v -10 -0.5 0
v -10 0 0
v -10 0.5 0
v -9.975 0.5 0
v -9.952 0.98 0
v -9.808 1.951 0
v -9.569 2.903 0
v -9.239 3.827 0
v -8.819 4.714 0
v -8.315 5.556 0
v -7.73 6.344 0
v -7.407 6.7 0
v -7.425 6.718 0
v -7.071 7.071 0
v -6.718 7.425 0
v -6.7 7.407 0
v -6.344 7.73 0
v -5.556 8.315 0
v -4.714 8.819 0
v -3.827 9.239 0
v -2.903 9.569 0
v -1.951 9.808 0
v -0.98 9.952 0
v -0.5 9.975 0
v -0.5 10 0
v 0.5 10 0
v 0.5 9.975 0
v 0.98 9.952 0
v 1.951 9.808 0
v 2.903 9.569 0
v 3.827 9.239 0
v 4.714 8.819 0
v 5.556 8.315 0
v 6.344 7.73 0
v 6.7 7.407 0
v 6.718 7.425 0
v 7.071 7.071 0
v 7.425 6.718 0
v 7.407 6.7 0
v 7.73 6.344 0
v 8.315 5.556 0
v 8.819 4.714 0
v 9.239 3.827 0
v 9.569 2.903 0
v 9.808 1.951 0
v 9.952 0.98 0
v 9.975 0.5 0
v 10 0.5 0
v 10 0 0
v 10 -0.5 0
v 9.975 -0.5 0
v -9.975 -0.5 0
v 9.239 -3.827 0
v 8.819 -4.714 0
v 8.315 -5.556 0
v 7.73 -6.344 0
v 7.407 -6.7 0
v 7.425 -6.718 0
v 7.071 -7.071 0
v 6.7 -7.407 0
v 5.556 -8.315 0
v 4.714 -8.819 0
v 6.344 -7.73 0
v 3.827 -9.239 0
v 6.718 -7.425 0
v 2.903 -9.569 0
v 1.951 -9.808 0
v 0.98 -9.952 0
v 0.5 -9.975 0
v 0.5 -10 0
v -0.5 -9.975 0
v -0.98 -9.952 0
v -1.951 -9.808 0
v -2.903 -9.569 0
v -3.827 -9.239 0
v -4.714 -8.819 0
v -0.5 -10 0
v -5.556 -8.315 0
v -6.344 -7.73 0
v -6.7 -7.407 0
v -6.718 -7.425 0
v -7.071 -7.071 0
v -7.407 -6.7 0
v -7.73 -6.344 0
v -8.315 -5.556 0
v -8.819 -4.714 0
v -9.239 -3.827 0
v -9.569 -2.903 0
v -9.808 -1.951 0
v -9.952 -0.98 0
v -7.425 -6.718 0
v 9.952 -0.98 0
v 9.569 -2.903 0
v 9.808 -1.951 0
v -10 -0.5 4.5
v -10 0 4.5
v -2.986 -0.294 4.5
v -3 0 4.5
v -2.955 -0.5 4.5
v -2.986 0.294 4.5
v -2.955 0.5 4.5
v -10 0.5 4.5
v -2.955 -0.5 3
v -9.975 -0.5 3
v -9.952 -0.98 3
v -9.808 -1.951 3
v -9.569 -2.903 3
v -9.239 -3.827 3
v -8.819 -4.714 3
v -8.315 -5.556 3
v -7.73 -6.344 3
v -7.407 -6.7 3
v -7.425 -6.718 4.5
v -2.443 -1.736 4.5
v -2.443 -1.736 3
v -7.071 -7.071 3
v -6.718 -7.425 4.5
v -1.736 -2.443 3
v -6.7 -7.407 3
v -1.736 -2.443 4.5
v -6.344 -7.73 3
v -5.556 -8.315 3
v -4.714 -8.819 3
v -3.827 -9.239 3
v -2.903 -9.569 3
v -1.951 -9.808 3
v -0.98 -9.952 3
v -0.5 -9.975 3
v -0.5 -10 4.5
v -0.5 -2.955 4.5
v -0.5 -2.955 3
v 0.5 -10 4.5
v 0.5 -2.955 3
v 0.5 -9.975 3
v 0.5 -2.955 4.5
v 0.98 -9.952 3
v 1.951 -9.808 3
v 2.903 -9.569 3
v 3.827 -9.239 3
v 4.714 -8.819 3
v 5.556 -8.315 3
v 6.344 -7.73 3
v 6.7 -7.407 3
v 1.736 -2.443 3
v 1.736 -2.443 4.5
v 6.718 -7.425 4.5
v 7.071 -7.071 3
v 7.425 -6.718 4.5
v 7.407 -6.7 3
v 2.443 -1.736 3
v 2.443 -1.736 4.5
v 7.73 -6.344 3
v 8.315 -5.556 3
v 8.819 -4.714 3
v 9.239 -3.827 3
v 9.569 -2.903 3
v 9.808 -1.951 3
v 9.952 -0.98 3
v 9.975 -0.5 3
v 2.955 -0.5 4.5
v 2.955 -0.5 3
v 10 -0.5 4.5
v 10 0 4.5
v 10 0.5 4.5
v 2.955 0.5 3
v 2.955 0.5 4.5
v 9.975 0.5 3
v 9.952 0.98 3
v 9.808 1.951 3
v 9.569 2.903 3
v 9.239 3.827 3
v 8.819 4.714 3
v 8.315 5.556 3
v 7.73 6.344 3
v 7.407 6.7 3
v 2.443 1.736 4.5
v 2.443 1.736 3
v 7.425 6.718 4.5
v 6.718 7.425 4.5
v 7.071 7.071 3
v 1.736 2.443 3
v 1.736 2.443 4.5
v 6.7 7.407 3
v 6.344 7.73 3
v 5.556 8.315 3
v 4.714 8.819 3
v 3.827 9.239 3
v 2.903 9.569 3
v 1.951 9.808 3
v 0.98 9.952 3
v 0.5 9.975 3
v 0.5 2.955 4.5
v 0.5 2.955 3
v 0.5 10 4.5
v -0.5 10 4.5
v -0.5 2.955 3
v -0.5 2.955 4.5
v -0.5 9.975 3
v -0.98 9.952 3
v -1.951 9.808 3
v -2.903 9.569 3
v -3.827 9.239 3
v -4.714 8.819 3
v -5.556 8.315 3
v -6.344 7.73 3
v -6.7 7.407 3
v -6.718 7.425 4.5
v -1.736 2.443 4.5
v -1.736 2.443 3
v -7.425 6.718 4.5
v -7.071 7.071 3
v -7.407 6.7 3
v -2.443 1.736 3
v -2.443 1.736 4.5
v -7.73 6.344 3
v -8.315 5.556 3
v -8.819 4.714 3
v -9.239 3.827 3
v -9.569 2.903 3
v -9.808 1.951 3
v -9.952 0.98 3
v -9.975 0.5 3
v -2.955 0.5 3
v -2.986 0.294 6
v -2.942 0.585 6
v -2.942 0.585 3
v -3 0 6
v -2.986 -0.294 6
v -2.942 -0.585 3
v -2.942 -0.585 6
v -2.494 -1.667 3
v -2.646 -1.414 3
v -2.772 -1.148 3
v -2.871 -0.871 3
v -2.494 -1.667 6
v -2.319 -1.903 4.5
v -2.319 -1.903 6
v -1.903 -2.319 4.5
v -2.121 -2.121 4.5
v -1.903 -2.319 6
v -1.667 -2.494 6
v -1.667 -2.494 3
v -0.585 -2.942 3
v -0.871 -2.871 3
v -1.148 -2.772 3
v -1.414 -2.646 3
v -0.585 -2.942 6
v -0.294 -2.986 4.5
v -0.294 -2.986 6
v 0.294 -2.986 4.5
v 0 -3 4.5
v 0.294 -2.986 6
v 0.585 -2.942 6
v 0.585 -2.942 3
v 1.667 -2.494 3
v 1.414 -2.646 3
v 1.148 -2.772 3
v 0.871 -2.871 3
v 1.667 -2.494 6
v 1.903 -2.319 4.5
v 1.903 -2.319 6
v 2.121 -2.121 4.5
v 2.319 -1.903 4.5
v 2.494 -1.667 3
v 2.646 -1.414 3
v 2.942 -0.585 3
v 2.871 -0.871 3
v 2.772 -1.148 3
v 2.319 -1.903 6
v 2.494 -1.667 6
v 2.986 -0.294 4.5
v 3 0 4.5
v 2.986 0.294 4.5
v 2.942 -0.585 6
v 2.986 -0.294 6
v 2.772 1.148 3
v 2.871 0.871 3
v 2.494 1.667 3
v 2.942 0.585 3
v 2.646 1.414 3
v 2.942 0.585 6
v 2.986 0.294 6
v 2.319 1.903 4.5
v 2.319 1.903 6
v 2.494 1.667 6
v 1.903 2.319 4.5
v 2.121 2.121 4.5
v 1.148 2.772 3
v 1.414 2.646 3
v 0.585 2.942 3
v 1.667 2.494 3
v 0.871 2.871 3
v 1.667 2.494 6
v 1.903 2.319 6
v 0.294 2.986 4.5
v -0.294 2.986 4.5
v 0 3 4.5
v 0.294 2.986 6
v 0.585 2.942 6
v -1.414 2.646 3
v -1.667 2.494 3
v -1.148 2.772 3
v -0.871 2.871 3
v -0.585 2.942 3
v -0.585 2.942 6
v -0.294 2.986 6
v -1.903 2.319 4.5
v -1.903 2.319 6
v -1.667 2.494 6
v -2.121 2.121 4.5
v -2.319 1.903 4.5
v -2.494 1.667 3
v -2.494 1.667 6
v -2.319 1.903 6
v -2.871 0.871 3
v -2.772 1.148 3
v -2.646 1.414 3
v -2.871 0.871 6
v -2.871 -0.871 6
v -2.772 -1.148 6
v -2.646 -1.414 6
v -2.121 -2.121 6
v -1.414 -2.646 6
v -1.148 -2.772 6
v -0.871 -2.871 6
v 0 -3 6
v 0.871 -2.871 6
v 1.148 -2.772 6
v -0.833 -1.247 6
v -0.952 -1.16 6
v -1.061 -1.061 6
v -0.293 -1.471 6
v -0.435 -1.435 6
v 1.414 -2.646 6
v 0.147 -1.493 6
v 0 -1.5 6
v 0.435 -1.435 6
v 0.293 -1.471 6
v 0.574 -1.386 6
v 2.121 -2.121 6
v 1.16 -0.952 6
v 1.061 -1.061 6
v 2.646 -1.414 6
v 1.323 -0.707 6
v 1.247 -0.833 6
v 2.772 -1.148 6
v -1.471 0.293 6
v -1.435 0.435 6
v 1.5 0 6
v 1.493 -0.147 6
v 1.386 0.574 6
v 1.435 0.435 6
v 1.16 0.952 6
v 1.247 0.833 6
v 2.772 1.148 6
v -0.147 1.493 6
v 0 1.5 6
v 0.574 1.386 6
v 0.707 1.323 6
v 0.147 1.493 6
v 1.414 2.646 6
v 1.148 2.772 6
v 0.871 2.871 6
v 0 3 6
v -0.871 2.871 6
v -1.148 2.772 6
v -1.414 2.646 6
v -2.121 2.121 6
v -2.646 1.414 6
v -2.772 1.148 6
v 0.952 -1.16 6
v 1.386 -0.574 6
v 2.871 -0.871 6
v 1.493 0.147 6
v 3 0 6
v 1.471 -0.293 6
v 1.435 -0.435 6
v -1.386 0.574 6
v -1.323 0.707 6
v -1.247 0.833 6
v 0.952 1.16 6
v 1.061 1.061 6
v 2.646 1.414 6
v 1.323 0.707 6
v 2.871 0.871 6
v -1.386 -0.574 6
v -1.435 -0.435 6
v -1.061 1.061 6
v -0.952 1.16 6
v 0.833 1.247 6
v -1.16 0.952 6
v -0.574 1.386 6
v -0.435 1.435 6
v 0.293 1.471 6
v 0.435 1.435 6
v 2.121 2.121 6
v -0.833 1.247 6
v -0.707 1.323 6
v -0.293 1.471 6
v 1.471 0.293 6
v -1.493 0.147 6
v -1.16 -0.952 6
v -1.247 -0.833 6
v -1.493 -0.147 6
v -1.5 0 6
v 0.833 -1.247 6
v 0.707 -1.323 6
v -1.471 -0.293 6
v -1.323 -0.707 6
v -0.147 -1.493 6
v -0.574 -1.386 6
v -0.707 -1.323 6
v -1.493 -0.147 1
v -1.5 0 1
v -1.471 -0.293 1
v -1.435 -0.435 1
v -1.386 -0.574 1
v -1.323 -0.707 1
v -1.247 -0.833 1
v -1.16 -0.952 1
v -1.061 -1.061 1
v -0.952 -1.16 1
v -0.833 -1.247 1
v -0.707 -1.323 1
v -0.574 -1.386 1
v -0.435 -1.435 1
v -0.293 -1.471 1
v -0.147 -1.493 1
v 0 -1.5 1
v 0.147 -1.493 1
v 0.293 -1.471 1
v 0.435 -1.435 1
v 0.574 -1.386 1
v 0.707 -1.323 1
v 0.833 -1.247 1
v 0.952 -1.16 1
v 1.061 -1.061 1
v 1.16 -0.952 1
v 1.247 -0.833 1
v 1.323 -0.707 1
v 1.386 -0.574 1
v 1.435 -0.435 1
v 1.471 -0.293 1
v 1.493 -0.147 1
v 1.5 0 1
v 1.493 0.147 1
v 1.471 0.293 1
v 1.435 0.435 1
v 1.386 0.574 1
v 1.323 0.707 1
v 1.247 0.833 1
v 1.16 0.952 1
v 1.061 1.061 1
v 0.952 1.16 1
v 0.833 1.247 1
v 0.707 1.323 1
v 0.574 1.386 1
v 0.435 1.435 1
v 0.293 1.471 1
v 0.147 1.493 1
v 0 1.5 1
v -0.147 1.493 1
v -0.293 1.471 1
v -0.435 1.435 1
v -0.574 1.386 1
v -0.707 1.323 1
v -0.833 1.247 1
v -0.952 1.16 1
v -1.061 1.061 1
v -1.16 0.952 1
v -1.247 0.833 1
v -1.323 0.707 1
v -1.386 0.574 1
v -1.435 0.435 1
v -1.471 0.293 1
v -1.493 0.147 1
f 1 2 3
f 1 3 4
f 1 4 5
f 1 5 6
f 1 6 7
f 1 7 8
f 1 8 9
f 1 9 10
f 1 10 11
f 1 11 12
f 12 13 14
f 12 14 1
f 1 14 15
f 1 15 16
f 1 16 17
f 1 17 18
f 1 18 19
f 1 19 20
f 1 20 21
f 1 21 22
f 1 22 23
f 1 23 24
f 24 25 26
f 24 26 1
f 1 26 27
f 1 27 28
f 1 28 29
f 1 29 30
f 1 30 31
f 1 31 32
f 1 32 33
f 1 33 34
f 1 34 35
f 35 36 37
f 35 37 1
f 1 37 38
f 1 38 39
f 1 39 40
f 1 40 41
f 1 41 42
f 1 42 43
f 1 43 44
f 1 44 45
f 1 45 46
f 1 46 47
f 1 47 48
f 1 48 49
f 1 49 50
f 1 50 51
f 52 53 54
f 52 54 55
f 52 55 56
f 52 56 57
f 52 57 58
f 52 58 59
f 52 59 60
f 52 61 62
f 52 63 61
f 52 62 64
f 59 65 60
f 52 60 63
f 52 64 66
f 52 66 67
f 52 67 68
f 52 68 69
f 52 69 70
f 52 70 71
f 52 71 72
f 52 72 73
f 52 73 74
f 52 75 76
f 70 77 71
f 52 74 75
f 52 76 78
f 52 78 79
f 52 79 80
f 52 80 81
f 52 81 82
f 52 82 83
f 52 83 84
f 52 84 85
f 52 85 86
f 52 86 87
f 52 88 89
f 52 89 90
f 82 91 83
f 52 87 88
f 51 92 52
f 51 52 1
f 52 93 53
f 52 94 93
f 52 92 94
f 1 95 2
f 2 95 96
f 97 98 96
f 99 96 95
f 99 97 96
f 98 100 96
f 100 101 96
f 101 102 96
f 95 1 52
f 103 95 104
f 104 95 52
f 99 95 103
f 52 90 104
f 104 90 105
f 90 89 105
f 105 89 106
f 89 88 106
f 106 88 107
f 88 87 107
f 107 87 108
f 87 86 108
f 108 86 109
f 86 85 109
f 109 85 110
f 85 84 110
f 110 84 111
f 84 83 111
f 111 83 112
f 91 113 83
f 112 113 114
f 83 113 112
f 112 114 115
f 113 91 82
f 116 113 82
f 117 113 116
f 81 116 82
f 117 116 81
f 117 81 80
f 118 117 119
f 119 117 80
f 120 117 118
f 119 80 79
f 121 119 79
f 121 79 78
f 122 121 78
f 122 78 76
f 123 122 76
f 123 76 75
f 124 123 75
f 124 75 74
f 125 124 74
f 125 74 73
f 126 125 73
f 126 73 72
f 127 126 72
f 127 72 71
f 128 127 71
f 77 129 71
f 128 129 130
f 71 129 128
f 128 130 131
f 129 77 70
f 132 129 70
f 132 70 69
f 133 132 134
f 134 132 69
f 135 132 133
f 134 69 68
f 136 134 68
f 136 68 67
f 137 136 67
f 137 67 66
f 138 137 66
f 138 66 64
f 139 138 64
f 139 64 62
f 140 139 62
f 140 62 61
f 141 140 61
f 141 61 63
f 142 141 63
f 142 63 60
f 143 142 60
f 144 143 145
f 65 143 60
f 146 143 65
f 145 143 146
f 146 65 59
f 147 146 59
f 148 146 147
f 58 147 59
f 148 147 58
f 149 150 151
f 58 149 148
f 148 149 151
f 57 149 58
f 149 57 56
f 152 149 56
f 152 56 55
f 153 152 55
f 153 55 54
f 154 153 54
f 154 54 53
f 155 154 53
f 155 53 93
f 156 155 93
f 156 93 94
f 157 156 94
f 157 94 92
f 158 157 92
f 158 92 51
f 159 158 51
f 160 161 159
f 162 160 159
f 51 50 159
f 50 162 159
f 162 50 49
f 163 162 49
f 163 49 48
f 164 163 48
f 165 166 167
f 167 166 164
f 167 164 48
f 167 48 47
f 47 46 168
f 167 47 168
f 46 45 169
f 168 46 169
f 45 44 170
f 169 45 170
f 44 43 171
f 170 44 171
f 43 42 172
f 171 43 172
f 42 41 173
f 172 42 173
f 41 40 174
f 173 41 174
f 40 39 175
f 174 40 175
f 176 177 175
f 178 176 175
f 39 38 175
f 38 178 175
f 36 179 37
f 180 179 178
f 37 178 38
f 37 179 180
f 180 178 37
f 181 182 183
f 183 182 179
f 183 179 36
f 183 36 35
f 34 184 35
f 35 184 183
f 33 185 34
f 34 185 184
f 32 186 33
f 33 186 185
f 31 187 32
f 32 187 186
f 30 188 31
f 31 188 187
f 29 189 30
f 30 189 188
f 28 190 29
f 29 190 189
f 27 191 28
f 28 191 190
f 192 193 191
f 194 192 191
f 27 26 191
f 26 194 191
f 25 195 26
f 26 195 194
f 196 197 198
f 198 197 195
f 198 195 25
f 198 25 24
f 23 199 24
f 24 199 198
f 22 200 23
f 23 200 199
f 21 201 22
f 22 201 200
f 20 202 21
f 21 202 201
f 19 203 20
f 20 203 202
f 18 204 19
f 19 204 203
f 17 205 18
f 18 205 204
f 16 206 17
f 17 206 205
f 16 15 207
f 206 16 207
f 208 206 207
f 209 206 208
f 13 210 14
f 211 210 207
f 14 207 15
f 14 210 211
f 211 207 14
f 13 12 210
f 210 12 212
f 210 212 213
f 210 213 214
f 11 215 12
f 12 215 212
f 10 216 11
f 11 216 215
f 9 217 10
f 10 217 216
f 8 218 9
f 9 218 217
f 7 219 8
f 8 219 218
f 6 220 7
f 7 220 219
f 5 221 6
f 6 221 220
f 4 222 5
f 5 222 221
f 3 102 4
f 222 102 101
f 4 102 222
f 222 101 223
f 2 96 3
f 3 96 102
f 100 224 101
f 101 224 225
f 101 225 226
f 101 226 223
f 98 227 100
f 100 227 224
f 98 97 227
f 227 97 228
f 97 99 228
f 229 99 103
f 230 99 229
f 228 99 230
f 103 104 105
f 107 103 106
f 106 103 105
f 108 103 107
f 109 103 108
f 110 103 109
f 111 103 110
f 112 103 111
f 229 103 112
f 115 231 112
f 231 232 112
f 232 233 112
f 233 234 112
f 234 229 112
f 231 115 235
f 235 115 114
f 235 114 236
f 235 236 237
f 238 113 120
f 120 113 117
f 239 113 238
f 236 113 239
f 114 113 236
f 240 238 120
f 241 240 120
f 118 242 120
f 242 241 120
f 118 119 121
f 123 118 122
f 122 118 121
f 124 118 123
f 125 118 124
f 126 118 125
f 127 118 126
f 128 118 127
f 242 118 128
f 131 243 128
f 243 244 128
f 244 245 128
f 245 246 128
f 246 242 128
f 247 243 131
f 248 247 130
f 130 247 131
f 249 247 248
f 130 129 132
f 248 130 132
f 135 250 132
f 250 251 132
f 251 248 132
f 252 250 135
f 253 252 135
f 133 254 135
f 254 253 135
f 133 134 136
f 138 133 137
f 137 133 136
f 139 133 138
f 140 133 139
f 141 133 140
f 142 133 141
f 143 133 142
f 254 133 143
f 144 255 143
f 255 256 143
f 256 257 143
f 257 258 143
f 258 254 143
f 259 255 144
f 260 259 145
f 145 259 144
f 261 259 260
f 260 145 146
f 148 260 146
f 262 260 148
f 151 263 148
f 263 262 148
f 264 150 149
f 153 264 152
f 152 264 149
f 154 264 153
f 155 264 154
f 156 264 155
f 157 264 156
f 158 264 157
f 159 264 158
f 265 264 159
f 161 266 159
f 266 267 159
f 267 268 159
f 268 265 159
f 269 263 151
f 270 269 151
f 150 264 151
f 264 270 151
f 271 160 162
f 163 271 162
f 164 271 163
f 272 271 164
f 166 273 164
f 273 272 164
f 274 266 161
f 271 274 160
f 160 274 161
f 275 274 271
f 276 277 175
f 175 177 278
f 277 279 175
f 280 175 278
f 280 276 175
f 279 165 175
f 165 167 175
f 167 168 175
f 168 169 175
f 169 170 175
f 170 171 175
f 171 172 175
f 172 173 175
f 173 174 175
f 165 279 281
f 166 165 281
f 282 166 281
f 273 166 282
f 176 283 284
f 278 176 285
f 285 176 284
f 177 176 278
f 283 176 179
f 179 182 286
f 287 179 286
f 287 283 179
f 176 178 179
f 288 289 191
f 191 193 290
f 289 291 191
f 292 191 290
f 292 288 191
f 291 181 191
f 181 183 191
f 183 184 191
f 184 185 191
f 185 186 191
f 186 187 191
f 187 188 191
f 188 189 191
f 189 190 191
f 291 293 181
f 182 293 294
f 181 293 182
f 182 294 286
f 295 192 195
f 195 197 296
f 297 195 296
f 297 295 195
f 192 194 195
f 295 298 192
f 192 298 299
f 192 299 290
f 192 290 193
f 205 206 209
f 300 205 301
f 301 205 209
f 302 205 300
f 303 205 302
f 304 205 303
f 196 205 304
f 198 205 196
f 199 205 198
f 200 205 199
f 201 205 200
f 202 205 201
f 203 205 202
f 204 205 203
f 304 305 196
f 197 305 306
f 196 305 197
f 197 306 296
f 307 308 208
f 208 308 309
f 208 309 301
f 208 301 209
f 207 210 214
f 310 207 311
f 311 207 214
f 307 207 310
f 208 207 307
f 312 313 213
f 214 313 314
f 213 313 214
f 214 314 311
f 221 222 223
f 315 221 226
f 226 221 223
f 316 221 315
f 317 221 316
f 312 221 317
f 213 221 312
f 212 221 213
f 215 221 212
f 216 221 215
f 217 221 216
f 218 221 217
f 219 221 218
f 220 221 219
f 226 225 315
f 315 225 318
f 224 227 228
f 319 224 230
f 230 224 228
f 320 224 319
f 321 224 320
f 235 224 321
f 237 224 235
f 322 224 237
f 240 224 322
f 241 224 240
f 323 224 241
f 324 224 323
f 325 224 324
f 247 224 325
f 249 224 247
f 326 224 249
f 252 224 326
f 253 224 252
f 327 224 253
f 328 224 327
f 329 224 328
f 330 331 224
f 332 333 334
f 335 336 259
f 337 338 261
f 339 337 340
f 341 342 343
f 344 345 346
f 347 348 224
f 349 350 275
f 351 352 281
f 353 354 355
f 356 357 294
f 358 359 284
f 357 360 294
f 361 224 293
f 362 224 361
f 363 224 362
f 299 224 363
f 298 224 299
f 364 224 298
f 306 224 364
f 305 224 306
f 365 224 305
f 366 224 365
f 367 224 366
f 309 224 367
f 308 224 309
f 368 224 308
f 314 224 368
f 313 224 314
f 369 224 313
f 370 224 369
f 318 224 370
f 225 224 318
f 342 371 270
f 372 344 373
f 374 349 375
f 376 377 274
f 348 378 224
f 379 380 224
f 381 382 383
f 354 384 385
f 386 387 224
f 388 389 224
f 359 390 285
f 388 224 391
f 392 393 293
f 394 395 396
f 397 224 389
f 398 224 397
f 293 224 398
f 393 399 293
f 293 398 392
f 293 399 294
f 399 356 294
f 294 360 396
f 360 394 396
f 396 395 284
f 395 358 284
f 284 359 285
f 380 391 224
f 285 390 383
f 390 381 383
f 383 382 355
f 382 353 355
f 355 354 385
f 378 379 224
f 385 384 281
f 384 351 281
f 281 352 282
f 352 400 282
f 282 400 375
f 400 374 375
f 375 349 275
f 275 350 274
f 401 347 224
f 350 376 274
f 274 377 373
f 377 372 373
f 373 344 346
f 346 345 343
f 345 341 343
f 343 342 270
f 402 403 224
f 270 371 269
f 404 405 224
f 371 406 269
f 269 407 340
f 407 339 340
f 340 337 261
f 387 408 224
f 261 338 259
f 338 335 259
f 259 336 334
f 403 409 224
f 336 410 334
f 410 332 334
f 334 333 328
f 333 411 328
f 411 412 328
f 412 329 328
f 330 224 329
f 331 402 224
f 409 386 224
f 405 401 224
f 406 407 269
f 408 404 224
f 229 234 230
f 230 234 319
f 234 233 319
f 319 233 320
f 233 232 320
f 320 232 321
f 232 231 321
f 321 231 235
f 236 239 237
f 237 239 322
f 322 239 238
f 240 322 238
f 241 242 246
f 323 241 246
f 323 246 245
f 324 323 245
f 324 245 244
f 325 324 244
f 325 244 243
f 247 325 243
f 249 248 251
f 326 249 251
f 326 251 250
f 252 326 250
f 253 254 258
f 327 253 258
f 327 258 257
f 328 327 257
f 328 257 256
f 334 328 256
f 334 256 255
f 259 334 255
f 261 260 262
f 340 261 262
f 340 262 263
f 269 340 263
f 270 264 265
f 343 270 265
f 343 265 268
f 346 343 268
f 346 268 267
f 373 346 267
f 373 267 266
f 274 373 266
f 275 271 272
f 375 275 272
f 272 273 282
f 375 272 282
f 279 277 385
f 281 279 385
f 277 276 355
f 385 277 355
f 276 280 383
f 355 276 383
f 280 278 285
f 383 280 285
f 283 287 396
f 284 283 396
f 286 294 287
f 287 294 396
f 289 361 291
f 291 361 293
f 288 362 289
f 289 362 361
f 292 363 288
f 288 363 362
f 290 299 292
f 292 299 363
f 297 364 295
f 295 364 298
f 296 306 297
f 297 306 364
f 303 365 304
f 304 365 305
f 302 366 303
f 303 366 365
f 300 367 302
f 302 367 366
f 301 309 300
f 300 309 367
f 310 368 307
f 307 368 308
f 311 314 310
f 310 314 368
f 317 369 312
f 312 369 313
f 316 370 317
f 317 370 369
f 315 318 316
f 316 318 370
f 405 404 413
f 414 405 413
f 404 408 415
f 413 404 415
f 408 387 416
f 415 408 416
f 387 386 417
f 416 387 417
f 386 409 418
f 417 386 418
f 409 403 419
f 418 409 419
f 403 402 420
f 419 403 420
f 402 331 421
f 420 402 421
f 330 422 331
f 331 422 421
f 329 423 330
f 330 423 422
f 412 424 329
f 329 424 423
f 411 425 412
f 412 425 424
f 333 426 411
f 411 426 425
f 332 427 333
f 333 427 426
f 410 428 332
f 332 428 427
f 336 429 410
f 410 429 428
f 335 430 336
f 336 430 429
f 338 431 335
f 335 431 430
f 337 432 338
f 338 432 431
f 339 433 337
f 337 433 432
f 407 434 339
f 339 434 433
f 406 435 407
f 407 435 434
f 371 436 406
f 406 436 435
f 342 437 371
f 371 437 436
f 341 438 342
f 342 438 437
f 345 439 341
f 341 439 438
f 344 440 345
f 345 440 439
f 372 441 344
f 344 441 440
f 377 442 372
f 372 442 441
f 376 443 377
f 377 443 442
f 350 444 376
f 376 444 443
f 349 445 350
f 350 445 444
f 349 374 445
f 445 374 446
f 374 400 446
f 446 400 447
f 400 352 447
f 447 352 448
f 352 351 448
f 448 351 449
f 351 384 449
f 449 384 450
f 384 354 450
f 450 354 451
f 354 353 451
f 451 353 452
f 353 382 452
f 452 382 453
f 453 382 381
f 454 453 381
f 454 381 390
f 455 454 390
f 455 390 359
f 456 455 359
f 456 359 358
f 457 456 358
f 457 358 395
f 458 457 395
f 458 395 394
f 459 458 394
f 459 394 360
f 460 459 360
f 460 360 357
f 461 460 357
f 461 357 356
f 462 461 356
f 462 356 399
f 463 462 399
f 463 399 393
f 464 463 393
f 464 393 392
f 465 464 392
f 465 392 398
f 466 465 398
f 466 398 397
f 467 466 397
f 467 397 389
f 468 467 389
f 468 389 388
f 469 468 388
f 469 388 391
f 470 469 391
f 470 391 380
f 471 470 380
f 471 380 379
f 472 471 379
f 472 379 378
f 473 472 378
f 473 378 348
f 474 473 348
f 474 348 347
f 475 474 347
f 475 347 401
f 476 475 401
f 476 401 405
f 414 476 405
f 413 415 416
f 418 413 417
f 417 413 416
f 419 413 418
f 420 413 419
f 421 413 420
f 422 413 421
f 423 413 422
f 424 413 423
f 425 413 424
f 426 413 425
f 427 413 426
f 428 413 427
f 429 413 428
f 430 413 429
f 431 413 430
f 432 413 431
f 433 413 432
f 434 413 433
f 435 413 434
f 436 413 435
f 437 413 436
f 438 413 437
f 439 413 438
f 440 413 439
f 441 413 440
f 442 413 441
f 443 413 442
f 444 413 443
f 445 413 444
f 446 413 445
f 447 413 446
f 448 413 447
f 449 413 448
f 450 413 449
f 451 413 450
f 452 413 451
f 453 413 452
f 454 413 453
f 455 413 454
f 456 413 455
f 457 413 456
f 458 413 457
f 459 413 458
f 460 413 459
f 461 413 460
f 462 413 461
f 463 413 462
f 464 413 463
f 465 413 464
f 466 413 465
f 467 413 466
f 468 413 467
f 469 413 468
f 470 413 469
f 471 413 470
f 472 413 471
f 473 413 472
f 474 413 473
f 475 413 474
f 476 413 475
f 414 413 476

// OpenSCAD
$fn=64;
difference() {
	union() {
		cylinder(r=20/2,h=3);
		cylinder(r=6/2, h=6);
		for (angle=[0:45:359.99]) {
			rotate([0,0,angle]) 
			translate([-10,-0.5,0]) 
				cube([20,1,4.5]);
		}
	}
	translate([0,0,1]) cylinder(r=3.0/2, h=6);
}
